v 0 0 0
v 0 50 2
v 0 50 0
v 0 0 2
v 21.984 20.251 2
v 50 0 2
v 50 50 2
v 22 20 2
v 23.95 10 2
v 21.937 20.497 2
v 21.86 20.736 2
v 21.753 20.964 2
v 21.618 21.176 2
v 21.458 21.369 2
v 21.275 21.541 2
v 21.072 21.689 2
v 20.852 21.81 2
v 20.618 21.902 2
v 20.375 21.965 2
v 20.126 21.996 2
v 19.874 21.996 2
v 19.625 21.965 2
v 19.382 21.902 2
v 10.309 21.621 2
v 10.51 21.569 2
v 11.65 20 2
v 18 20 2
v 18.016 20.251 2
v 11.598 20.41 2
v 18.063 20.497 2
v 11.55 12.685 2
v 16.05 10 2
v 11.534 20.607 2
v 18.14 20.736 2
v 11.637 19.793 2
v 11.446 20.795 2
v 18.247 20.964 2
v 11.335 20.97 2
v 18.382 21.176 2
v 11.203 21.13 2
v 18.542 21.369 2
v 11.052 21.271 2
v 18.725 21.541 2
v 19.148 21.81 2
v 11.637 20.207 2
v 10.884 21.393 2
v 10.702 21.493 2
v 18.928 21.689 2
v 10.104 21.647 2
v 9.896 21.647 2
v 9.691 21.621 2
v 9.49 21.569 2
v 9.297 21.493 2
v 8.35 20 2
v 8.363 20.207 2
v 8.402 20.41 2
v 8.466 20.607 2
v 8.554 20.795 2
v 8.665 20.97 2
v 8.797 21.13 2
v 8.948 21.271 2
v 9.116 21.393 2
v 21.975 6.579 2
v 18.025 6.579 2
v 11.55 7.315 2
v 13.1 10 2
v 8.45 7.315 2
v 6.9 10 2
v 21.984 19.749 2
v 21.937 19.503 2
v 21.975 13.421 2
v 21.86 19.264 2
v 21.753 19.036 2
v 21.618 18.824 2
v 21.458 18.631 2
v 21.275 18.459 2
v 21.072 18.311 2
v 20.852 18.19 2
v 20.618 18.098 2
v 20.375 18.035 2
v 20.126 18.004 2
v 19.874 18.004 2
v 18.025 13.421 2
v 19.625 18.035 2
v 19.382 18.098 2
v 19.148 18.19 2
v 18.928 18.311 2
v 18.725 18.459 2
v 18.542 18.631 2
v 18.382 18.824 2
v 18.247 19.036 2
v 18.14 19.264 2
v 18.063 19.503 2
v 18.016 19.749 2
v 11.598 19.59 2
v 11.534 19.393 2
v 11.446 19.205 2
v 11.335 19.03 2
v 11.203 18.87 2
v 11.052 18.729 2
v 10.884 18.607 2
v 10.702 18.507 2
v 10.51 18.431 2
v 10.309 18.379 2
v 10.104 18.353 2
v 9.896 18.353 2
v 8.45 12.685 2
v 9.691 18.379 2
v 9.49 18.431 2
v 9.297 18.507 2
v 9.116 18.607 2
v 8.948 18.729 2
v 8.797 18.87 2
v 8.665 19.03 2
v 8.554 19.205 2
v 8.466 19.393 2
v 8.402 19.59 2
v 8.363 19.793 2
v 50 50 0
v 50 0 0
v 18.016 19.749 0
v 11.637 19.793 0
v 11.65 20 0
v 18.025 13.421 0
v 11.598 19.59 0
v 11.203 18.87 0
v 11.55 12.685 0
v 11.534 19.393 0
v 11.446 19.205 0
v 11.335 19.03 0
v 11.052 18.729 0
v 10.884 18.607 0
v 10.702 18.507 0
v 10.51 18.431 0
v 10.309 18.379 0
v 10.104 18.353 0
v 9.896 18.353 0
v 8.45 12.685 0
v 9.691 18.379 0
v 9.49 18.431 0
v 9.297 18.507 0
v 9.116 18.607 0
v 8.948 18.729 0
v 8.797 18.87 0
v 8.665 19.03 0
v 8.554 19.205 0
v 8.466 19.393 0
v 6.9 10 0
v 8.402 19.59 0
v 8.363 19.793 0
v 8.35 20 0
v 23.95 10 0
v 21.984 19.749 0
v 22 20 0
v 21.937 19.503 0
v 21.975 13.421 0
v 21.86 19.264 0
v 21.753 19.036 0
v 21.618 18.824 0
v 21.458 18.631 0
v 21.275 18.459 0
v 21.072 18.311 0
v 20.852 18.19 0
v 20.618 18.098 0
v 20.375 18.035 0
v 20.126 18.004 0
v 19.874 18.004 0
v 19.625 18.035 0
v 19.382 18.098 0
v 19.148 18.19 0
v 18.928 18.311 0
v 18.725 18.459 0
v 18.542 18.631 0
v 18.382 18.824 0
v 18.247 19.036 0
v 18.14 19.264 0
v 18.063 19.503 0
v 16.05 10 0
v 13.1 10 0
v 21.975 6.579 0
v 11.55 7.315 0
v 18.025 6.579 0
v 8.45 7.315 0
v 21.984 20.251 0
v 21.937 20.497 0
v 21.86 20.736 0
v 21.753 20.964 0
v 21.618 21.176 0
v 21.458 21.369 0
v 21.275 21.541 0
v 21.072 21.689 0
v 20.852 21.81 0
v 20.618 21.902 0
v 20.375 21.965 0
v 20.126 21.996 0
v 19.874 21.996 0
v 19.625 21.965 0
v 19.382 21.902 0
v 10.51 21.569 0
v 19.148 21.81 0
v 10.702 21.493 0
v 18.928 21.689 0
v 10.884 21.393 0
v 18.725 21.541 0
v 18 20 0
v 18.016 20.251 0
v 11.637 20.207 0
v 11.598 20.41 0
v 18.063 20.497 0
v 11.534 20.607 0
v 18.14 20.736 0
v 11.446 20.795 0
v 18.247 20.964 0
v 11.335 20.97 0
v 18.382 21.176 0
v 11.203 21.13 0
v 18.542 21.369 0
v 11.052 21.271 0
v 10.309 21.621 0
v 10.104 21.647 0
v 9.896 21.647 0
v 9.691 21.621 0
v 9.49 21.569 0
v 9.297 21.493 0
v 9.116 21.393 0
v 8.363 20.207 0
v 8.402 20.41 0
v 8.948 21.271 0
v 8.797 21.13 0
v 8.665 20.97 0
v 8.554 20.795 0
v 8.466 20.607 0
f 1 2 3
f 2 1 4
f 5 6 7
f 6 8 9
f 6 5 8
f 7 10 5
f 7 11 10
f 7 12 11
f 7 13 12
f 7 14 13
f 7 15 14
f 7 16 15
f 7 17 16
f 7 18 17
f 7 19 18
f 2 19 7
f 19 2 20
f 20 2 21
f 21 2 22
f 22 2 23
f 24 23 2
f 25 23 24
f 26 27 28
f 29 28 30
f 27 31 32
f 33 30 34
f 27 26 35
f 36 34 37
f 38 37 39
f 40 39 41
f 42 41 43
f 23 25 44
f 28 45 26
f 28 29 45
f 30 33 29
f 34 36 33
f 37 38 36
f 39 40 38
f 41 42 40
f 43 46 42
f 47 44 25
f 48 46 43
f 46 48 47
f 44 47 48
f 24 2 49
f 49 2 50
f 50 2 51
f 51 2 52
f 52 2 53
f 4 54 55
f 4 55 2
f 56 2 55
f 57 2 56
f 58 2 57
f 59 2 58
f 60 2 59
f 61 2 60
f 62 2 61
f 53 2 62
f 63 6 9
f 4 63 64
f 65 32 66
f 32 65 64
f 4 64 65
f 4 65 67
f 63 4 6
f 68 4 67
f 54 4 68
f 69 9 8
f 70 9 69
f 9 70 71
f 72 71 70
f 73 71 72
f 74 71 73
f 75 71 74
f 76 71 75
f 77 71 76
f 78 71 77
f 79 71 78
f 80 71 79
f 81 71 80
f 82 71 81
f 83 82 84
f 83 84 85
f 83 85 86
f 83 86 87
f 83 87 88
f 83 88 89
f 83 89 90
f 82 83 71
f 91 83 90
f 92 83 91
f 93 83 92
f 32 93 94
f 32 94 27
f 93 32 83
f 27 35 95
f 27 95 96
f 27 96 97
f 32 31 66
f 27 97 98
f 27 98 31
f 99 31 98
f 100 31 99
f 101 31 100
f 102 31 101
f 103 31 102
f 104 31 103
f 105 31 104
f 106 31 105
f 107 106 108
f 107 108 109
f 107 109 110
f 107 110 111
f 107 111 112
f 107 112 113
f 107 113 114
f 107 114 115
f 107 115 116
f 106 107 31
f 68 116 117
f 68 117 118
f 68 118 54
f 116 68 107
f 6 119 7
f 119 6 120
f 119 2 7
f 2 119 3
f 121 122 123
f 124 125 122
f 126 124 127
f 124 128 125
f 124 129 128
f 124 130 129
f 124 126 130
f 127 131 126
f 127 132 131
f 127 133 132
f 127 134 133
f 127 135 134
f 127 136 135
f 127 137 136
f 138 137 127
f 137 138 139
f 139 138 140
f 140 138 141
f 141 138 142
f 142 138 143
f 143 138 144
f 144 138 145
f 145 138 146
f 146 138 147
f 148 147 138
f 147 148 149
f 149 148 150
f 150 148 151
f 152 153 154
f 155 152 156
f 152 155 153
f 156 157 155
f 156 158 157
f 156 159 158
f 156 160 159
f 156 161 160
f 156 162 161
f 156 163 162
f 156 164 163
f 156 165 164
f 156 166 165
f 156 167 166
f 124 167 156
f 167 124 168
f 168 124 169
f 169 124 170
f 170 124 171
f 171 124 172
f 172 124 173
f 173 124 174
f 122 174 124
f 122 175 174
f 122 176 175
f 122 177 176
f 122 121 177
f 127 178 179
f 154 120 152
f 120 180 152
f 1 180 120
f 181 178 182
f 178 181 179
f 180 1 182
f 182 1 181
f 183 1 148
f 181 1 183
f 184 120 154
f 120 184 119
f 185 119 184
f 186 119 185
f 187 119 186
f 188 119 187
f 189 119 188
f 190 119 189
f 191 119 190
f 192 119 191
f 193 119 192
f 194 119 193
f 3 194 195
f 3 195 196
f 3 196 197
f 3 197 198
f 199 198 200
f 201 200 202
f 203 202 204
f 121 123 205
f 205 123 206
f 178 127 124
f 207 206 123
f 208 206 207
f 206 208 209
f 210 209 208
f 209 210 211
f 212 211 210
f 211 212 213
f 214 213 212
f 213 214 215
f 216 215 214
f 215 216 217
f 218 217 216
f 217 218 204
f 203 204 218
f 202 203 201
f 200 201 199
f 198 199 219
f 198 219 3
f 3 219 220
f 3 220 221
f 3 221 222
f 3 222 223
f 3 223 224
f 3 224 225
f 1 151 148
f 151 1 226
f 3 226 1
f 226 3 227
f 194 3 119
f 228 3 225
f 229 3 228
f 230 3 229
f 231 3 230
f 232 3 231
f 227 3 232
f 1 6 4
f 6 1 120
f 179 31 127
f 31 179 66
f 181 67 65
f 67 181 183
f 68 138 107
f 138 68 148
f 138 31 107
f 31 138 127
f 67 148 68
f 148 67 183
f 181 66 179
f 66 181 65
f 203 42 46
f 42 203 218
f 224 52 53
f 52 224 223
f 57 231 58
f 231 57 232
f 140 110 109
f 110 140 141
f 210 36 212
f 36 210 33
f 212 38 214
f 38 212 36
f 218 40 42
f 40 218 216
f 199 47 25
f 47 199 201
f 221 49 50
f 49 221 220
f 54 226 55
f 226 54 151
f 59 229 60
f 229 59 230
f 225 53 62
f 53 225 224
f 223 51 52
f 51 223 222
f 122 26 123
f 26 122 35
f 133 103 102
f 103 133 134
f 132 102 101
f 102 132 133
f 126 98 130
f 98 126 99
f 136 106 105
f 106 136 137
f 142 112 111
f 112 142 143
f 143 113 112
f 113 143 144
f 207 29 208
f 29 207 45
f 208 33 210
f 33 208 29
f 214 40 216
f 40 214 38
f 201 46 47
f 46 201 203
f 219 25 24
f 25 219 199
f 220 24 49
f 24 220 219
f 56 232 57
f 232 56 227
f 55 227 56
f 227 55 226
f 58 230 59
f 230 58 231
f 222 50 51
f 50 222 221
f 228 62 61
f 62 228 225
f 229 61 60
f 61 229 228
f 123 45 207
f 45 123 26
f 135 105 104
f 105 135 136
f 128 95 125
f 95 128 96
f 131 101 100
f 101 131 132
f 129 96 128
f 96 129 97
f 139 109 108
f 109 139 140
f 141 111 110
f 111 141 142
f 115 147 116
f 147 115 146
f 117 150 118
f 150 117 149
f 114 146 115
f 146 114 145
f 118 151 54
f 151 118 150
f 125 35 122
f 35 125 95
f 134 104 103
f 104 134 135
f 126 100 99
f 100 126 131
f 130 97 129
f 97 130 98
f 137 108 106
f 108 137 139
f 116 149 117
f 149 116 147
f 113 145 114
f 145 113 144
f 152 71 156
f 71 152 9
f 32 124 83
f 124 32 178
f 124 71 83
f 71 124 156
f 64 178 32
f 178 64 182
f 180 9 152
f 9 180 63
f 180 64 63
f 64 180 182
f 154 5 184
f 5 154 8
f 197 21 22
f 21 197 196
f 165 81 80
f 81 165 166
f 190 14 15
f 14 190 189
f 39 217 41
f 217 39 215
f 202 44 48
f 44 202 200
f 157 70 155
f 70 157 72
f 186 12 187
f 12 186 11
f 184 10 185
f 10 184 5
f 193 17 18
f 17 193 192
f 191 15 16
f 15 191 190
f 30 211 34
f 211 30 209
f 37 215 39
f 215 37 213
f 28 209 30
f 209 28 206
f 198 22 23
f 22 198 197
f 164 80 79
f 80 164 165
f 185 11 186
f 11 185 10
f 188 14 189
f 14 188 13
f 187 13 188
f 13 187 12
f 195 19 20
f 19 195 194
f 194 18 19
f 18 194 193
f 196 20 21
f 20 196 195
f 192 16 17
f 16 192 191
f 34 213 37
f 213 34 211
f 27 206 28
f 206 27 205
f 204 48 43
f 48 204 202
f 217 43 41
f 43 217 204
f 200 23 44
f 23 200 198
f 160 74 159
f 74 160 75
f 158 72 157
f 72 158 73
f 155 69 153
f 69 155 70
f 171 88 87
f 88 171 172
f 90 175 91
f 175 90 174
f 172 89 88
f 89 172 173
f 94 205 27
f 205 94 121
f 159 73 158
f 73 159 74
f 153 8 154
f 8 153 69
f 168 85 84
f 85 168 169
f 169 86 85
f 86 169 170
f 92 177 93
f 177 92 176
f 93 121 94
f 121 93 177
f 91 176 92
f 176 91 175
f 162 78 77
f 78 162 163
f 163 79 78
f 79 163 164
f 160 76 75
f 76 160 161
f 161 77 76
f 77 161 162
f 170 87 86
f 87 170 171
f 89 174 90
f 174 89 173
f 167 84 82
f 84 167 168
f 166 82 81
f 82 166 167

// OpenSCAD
// file: ../includes/nuts-and-screws.scad
// http://www.fairburyfastener.com/xdims_metric_nuts.htm

module m3_nut(h = 3) {
    nut(h, 3.1);
}

module m3_screw(h = 19) {
    screw(h = h, r = 1.65);
}

module m4_nut(h = 3) {
    nut(h, 3.95);
}

module m4_screw(h = 19) {
    screw(h = h, r = 2);
}

module nut(h, r) {
    cylinder(r = r, h = h, $fn = 6);
}

module screw(h, r) {
    cylinder(h = h, r = r, $fn=50);
}

/*
3 devi fare un foro di 2,5 mm. 
per le viti da 4 il foro deve essere del 3,25 
per le viti da 5 mm il foro deve essere di di 4 mm 
per le viti da 6 mm il foro deve essere di 4,75 mm. 
*/
// main file
use <../includes/nuts-and-screws.scad>

difference() {
    cube([50, 50, 2]);

    translate([10, 10, -0.5]) m3_nut();
    translate([10, 20, -0.5]) m3_screw();

    translate([20, 10, -0.5]) m4_nut();
    translate([20, 20, -0.5]) m4_screw();
}
